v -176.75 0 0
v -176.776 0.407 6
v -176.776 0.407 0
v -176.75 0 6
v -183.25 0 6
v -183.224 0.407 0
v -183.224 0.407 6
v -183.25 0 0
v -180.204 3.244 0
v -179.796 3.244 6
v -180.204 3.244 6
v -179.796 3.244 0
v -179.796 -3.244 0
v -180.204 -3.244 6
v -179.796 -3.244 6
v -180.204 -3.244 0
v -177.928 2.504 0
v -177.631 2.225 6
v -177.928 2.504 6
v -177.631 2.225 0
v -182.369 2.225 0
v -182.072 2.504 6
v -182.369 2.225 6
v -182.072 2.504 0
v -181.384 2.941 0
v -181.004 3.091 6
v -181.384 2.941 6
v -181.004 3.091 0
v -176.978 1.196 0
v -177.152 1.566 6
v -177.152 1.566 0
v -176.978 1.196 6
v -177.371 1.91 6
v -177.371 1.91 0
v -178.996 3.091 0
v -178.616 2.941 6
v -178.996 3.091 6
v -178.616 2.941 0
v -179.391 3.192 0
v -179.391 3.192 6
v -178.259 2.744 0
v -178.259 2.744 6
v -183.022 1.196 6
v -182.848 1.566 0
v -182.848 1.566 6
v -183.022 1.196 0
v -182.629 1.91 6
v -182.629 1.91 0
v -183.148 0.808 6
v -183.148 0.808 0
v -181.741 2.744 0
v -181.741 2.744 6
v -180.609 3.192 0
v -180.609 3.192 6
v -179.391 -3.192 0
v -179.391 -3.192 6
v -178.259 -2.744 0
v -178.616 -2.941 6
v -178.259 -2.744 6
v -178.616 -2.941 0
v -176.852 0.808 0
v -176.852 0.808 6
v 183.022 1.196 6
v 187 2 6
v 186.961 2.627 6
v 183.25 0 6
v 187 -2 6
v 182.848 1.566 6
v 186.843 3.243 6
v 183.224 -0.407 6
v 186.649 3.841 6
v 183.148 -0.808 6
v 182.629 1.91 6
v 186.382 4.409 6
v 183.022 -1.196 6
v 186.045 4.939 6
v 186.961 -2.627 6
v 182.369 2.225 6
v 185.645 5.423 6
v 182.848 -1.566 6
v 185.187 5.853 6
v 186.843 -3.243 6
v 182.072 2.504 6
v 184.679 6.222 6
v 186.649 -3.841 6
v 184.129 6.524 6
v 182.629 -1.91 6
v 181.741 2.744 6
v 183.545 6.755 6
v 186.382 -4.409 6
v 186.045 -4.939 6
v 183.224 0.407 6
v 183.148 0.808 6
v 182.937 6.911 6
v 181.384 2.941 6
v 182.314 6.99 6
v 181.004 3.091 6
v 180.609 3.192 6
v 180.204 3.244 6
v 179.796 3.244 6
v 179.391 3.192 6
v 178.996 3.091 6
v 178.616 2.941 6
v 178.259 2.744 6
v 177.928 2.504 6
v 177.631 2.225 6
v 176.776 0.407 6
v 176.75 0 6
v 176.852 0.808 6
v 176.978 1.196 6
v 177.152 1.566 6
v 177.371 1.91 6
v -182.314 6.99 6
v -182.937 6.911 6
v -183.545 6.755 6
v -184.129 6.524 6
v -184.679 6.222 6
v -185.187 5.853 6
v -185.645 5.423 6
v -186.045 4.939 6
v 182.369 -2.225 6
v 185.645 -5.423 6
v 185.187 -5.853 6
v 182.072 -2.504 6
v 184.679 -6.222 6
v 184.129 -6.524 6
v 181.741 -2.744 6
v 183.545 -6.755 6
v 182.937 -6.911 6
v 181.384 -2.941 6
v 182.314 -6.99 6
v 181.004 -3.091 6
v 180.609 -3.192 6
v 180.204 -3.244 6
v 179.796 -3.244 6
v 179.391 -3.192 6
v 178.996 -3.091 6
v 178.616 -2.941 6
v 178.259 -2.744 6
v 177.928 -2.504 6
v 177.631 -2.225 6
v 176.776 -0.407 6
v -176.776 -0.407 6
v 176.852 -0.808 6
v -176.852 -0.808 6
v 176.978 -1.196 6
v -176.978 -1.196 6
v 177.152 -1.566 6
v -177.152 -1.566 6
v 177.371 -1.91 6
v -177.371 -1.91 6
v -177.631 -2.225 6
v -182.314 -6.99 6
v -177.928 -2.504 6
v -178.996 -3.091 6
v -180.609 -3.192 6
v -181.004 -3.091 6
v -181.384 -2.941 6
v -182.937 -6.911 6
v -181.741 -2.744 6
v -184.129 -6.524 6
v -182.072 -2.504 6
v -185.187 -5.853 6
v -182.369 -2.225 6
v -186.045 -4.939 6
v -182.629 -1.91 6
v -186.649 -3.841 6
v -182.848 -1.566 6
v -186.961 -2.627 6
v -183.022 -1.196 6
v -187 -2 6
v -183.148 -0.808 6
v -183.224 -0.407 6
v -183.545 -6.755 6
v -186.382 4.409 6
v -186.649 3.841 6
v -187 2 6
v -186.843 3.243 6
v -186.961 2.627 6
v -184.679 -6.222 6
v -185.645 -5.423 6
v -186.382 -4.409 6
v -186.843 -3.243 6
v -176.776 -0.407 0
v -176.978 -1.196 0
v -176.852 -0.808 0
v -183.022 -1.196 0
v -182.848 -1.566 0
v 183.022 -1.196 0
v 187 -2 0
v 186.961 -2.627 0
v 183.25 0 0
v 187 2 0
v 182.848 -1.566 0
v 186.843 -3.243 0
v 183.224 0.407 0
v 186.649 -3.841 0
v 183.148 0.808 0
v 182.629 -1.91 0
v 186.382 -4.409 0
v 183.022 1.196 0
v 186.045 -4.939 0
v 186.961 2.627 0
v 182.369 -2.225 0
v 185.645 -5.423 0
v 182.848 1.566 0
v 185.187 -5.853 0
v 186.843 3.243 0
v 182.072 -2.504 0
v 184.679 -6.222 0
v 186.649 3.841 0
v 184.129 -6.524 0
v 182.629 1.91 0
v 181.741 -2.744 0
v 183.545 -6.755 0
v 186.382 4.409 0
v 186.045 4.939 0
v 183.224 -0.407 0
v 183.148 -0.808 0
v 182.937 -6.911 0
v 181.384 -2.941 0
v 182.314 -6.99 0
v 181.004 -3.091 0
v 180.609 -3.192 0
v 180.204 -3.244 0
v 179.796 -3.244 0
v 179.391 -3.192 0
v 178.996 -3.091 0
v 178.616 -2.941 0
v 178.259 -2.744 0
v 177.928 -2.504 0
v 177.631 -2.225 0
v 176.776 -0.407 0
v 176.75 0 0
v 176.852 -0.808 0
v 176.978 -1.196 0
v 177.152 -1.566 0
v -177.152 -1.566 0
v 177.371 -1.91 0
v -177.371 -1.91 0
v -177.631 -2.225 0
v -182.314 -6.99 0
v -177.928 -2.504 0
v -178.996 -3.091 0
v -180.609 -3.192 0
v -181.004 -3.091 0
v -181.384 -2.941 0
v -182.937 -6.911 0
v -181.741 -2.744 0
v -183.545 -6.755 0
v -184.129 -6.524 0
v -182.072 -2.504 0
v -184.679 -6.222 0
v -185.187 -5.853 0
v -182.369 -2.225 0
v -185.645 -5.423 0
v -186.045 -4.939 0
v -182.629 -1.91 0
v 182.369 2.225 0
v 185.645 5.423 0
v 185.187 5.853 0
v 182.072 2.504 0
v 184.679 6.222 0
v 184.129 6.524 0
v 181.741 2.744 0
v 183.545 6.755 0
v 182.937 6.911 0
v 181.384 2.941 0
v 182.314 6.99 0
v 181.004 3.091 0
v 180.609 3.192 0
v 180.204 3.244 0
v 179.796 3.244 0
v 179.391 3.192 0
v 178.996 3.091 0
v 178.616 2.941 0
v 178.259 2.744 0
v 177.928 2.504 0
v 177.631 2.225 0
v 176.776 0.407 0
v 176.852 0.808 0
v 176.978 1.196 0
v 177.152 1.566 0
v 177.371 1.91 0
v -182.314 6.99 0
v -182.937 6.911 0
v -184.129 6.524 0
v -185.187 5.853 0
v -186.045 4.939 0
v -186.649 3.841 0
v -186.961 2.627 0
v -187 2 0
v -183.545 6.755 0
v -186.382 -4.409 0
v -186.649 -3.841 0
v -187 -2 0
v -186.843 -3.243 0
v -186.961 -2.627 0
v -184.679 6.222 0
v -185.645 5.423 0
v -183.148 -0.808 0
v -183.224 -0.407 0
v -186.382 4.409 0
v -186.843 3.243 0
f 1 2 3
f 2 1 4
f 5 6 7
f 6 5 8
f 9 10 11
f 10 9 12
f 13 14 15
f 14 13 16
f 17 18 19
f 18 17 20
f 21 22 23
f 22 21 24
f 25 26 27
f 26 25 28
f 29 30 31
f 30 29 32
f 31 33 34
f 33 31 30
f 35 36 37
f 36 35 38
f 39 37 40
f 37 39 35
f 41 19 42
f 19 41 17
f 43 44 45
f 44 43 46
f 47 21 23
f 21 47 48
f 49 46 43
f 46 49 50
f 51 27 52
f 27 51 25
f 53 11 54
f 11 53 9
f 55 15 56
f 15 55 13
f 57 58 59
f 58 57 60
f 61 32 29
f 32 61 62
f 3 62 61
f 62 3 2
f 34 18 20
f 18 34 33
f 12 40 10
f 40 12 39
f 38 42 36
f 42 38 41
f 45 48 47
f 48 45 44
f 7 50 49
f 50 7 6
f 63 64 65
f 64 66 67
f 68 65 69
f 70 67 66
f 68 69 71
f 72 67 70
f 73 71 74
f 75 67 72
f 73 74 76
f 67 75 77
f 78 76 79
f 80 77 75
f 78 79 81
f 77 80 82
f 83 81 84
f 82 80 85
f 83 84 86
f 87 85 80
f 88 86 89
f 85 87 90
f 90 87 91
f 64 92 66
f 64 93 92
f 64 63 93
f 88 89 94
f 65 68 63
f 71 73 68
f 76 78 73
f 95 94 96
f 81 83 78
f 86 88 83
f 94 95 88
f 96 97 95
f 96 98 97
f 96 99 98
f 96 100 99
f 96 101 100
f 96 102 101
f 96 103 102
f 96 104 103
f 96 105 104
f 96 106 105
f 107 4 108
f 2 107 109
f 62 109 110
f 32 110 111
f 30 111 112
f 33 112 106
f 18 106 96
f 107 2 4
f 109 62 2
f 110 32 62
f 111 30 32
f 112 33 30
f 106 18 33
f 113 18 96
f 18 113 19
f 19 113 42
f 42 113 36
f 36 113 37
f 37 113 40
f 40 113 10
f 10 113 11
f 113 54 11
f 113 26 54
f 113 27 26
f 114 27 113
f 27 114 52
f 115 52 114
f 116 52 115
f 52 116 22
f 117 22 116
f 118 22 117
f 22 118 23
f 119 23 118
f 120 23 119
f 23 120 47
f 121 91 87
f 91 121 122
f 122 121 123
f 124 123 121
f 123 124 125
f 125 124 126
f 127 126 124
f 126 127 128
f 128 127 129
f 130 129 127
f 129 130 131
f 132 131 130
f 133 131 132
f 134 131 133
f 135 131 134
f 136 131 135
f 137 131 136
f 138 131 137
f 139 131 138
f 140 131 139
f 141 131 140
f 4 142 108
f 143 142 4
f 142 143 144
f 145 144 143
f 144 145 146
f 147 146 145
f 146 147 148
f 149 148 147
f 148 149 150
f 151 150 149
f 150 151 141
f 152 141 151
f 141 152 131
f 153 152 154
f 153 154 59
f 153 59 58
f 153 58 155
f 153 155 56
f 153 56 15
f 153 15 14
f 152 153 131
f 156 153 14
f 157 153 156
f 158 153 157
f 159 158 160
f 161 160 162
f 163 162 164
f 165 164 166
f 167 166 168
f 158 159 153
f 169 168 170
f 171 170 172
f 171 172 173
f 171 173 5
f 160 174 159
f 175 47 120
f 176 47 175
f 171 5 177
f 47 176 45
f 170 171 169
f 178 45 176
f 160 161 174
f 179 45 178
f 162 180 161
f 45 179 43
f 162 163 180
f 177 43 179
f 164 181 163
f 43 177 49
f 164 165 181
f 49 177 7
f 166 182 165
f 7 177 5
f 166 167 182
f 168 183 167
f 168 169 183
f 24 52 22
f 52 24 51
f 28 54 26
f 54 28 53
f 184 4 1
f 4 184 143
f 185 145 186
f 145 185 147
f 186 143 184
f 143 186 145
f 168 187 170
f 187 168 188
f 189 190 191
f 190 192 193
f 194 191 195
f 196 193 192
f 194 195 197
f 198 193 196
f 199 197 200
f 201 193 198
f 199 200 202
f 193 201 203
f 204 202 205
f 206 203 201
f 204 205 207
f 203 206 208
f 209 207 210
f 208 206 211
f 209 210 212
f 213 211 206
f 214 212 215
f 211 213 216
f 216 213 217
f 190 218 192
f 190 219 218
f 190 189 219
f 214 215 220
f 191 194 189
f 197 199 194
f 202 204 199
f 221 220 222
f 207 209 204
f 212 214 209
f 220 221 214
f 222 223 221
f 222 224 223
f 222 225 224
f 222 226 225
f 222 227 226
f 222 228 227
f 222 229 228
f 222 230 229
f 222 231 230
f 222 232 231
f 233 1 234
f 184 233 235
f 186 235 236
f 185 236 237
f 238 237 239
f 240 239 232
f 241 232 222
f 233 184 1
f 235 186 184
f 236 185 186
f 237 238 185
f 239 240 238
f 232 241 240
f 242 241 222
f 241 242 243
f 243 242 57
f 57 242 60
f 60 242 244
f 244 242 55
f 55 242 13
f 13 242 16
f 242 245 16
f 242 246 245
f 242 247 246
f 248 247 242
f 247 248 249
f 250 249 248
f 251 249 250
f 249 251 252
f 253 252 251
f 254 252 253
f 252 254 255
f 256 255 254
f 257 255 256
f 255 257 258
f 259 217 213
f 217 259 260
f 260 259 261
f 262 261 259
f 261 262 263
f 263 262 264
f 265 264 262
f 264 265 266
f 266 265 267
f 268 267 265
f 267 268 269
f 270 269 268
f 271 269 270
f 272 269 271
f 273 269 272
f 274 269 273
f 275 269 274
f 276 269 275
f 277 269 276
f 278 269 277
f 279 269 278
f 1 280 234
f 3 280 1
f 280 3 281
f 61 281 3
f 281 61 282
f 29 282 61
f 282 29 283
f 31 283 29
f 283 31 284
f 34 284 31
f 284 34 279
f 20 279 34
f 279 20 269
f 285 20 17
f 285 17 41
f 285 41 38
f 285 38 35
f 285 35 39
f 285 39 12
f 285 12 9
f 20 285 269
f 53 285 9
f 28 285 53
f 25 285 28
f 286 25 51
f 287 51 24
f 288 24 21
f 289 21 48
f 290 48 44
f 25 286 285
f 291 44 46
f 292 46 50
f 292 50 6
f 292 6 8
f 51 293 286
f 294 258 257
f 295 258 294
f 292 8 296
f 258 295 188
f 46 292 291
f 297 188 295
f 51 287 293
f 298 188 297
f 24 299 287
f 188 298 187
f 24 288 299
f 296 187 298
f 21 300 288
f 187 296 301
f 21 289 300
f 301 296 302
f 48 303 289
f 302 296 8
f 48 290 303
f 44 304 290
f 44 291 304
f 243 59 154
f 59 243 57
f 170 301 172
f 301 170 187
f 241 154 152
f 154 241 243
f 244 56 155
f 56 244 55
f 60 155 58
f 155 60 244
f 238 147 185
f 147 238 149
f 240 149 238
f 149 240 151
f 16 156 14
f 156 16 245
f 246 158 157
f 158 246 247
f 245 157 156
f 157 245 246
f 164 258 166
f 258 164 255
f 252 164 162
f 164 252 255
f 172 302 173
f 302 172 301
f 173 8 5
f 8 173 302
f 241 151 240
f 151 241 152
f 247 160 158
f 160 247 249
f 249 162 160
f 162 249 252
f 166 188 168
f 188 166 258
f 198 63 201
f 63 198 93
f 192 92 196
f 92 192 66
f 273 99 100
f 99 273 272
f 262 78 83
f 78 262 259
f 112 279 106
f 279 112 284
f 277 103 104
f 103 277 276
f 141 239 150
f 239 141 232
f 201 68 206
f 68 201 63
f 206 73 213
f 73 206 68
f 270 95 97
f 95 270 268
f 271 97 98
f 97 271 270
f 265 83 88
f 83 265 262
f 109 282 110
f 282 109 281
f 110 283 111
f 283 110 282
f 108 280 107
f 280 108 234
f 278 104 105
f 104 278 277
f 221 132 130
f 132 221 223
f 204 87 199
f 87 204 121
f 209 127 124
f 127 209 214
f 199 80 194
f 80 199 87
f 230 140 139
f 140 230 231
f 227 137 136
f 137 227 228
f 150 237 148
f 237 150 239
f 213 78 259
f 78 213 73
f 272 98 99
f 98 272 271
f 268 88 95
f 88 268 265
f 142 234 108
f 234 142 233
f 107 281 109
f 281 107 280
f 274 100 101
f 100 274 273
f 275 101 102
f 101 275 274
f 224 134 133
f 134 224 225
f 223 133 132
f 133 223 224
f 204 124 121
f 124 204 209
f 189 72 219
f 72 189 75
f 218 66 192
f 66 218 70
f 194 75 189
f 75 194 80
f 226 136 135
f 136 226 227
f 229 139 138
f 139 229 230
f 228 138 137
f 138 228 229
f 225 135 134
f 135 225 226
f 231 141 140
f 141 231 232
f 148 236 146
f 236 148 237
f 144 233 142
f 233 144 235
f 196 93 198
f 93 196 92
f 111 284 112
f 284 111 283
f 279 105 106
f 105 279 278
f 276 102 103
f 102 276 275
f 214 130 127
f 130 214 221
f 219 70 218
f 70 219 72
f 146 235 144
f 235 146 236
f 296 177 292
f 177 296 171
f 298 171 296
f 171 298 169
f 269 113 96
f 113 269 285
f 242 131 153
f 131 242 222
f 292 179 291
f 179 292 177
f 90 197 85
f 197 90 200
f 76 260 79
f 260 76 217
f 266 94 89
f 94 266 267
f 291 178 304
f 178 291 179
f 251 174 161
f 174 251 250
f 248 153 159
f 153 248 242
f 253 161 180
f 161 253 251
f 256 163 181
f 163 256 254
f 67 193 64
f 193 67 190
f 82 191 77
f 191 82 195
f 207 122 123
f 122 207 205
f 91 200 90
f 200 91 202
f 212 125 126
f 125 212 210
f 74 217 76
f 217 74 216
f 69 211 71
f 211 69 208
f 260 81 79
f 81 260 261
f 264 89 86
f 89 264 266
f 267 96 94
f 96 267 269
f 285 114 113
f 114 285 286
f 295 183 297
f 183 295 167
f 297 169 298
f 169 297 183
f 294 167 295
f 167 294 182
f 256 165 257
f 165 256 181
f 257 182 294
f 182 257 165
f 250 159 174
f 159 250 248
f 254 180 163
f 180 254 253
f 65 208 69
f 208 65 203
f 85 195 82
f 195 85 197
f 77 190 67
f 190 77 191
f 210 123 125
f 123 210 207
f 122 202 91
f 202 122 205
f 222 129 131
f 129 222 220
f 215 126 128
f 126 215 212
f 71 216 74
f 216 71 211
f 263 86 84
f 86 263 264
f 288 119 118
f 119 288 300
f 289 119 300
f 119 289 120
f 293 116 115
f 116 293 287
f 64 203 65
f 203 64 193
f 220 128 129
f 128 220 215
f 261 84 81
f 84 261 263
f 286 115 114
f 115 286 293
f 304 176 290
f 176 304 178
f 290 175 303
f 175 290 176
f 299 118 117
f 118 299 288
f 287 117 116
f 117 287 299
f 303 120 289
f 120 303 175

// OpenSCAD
$fn = 50;


difference() {
	union() {
		hull() {
			translate(v = [-182.0000000000, 2.0000000000, 0]) {
				cylinder(h = 6, r = 5);
			}
			translate(v = [182.0000000000, 2.0000000000, 0]) {
				cylinder(h = 6, r = 5);
			}
			translate(v = [-182.0000000000, -2.0000000000, 0]) {
				cylinder(h = 6, r = 5);
			}
			translate(v = [182.0000000000, -2.0000000000, 0]) {
				cylinder(h = 6, r = 5);
			}
		}
	}
	union() {
		translate(v = [-180.0000000000, 0.0000000000, 0]) {
			cylinder(h = 6, r = 3.2500000000);
		}
		translate(v = [180.0000000000, 0.0000000000, 0]) {
			cylinder(h = 6, r = 3.2500000000);
		}
		translate(v = [-180.0000000000, 0.0000000000, 0]) {
			cylinder(h = 6, r = 1.8000000000);
		}
		translate(v = [180.0000000000, 0.0000000000, 0]) {
			cylinder(h = 6, r = 1.8000000000);
		}
		translate(v = [-180.0000000000, 0.0000000000, 0]) {
			cylinder(h = 6, r = 1.8000000000);
		}
		translate(v = [180.0000000000, 0.0000000000, 0]) {
			cylinder(h = 6, r = 1.8000000000);
		}
		translate(v = [-180.0000000000, 0.0000000000, 0]) {
			cylinder(h = 6, r = 1.8000000000);
		}
		translate(v = [180.0000000000, 0.0000000000, 0]) {
			cylinder(h = 6, r = 1.8000000000);
		}
	}
}
